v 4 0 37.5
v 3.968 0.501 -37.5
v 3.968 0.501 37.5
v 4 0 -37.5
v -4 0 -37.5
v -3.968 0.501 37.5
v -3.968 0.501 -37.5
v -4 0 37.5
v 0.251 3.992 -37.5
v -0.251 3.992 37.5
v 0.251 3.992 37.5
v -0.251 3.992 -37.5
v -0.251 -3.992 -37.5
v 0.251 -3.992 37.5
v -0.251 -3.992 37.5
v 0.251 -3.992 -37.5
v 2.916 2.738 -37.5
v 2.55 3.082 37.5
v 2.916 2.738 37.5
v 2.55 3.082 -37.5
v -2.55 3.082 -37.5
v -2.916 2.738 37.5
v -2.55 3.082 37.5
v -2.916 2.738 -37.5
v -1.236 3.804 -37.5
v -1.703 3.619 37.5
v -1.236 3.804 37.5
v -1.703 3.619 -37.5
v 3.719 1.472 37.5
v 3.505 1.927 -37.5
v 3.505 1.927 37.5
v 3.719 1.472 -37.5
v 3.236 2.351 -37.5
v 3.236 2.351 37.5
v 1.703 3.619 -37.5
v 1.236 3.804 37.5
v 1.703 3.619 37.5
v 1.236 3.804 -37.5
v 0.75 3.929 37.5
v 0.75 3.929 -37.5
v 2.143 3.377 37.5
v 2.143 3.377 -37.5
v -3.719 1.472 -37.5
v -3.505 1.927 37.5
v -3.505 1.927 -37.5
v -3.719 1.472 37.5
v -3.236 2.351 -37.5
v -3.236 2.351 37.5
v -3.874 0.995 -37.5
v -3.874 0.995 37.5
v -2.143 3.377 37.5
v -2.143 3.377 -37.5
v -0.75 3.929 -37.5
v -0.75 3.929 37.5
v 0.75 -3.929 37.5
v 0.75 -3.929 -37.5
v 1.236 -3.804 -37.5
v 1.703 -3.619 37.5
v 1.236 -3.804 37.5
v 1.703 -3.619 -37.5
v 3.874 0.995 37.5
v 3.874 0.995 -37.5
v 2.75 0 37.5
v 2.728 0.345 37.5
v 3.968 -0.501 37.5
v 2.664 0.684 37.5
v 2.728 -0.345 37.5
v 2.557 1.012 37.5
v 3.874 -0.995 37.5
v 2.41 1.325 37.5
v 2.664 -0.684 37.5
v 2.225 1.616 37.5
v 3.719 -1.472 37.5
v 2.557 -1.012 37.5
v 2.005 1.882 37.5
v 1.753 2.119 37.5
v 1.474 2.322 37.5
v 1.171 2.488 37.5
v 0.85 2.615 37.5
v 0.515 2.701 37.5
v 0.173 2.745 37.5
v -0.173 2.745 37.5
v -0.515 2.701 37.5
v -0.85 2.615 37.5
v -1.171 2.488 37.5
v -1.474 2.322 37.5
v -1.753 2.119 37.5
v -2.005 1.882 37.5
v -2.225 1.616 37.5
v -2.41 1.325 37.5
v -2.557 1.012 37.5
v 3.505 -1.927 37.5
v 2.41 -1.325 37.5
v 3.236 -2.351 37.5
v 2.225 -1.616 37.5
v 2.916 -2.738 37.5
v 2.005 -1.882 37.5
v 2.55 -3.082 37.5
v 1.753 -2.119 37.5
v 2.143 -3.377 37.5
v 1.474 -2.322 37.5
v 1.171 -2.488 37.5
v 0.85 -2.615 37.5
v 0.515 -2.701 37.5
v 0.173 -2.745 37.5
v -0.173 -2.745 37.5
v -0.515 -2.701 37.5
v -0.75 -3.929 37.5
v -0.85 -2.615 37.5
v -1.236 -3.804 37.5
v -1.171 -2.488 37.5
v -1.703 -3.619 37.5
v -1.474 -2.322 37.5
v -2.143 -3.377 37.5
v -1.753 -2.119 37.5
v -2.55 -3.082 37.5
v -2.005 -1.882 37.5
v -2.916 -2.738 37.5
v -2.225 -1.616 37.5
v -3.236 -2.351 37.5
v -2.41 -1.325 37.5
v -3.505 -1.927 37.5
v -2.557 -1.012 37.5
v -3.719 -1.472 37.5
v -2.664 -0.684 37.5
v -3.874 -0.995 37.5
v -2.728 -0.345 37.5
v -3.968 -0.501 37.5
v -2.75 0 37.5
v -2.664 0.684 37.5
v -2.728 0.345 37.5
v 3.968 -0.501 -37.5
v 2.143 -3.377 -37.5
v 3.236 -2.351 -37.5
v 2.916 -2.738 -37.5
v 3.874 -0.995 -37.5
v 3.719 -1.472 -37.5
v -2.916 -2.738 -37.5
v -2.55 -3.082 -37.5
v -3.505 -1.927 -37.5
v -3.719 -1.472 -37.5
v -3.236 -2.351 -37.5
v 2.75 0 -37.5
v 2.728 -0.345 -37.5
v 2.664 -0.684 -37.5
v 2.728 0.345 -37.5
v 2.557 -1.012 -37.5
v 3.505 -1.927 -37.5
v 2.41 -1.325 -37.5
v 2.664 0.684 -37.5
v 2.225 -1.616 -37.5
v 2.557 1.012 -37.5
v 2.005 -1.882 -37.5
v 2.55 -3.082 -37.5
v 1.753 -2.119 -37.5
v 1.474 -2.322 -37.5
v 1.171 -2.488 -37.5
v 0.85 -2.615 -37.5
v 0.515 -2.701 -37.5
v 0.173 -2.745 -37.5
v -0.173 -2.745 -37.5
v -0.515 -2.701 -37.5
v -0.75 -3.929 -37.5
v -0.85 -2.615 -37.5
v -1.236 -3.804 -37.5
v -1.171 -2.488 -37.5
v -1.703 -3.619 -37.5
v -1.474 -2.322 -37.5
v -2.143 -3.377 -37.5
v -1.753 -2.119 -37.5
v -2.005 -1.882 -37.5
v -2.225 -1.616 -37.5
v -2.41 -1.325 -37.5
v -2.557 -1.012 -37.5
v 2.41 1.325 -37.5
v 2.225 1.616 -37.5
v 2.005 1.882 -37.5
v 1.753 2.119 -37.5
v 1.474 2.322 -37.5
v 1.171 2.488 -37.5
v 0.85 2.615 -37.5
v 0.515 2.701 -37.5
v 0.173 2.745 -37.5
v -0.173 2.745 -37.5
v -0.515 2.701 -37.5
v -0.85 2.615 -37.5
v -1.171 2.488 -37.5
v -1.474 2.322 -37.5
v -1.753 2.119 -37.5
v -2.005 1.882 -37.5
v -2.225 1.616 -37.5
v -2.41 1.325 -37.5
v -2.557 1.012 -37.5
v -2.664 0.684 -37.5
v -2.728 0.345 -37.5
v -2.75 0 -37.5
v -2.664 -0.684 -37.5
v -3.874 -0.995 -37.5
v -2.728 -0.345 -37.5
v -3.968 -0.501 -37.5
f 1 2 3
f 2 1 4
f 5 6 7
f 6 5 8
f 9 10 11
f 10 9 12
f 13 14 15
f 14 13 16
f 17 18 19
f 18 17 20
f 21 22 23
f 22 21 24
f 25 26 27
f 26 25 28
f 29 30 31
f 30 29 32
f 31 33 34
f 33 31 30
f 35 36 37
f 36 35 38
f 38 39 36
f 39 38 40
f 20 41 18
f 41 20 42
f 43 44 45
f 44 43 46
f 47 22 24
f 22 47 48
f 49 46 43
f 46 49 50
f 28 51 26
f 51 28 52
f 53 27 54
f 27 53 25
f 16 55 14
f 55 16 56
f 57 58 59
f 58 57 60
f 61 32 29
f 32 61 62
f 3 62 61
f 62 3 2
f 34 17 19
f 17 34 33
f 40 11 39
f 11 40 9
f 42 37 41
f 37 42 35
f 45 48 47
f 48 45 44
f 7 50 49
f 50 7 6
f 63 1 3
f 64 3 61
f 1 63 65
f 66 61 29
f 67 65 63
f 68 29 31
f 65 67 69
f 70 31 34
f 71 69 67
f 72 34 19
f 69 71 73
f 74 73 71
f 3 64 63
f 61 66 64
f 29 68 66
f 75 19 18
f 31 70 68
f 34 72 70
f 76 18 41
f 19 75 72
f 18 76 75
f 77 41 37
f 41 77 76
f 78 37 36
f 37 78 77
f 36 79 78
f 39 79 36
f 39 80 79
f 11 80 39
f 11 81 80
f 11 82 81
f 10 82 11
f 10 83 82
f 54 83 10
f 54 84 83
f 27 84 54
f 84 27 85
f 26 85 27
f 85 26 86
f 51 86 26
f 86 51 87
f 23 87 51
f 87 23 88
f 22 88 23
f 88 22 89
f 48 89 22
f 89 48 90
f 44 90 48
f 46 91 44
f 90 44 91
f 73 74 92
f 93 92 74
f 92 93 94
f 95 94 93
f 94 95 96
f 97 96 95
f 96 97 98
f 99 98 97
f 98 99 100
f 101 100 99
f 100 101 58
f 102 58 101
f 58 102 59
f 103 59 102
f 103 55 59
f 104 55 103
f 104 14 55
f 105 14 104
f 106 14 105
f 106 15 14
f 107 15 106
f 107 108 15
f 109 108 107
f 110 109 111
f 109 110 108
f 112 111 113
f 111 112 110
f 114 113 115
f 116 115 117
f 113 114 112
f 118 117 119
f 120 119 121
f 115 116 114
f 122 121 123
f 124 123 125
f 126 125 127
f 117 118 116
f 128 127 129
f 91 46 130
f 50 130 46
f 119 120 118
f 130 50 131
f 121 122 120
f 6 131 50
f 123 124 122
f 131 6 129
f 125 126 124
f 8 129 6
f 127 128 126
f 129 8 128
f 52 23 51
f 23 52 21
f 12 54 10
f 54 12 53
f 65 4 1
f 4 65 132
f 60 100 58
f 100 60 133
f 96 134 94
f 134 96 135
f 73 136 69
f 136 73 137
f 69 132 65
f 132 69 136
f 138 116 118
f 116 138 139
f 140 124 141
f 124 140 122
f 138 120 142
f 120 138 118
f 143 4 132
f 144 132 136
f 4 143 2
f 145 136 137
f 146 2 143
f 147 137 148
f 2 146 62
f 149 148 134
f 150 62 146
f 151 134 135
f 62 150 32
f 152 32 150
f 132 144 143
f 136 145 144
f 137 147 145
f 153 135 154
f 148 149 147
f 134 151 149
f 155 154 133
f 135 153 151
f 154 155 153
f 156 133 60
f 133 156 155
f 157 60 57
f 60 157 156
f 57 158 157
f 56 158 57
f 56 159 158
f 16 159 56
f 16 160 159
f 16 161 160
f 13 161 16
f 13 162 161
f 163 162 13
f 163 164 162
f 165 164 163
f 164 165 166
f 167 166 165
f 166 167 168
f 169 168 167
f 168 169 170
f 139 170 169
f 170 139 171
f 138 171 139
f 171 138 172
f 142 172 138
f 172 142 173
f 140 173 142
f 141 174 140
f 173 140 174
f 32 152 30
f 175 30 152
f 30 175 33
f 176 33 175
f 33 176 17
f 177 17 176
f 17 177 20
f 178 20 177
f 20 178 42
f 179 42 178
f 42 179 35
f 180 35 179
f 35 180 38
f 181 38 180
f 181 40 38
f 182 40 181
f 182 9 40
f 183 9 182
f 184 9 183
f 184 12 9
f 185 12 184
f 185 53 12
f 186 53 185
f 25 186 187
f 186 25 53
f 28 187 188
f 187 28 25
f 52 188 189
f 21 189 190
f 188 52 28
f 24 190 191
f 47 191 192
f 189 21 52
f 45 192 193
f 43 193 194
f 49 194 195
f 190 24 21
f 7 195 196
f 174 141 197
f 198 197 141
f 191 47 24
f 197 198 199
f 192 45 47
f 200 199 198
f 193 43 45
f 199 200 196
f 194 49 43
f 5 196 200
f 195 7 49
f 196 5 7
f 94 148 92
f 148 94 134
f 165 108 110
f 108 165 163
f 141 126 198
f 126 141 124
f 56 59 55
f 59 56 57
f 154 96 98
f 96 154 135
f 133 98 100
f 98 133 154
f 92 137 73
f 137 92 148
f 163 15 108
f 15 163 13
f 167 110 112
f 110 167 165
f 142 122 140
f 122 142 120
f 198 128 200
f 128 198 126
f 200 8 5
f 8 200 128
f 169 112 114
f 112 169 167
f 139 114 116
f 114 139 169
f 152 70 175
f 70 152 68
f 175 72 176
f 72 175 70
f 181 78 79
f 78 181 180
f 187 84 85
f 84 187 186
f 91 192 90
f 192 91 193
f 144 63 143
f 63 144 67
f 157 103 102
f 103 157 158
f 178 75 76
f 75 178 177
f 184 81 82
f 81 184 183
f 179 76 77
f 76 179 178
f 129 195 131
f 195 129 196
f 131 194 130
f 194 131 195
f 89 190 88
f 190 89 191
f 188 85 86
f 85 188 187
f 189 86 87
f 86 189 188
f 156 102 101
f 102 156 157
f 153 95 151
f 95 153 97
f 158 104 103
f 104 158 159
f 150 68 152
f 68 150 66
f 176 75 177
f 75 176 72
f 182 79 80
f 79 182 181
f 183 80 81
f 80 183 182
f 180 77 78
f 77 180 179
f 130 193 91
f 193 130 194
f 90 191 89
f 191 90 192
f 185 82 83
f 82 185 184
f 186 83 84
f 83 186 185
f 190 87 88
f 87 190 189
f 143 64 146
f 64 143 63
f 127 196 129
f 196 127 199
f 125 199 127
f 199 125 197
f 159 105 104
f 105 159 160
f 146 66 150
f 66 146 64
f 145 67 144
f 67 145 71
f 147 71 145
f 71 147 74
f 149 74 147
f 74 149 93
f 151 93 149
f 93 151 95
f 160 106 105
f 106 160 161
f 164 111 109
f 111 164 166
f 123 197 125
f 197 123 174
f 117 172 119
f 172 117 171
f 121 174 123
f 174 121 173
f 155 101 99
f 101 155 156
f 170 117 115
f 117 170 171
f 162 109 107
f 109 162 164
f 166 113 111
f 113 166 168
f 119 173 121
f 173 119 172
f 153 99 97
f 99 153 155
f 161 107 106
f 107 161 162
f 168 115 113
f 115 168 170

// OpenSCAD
$fn = 50;


difference() {
	union() {
		translate(v = [0, 0, -37.5000000000]) {
			cylinder(h = 75, r = 4.0000000000);
		}
	}
	union() {
		translate(v = [0, 0, -100.0000000000]) {
			cylinder(h = 200, r = 2.7500000000);
		}
	}
}
